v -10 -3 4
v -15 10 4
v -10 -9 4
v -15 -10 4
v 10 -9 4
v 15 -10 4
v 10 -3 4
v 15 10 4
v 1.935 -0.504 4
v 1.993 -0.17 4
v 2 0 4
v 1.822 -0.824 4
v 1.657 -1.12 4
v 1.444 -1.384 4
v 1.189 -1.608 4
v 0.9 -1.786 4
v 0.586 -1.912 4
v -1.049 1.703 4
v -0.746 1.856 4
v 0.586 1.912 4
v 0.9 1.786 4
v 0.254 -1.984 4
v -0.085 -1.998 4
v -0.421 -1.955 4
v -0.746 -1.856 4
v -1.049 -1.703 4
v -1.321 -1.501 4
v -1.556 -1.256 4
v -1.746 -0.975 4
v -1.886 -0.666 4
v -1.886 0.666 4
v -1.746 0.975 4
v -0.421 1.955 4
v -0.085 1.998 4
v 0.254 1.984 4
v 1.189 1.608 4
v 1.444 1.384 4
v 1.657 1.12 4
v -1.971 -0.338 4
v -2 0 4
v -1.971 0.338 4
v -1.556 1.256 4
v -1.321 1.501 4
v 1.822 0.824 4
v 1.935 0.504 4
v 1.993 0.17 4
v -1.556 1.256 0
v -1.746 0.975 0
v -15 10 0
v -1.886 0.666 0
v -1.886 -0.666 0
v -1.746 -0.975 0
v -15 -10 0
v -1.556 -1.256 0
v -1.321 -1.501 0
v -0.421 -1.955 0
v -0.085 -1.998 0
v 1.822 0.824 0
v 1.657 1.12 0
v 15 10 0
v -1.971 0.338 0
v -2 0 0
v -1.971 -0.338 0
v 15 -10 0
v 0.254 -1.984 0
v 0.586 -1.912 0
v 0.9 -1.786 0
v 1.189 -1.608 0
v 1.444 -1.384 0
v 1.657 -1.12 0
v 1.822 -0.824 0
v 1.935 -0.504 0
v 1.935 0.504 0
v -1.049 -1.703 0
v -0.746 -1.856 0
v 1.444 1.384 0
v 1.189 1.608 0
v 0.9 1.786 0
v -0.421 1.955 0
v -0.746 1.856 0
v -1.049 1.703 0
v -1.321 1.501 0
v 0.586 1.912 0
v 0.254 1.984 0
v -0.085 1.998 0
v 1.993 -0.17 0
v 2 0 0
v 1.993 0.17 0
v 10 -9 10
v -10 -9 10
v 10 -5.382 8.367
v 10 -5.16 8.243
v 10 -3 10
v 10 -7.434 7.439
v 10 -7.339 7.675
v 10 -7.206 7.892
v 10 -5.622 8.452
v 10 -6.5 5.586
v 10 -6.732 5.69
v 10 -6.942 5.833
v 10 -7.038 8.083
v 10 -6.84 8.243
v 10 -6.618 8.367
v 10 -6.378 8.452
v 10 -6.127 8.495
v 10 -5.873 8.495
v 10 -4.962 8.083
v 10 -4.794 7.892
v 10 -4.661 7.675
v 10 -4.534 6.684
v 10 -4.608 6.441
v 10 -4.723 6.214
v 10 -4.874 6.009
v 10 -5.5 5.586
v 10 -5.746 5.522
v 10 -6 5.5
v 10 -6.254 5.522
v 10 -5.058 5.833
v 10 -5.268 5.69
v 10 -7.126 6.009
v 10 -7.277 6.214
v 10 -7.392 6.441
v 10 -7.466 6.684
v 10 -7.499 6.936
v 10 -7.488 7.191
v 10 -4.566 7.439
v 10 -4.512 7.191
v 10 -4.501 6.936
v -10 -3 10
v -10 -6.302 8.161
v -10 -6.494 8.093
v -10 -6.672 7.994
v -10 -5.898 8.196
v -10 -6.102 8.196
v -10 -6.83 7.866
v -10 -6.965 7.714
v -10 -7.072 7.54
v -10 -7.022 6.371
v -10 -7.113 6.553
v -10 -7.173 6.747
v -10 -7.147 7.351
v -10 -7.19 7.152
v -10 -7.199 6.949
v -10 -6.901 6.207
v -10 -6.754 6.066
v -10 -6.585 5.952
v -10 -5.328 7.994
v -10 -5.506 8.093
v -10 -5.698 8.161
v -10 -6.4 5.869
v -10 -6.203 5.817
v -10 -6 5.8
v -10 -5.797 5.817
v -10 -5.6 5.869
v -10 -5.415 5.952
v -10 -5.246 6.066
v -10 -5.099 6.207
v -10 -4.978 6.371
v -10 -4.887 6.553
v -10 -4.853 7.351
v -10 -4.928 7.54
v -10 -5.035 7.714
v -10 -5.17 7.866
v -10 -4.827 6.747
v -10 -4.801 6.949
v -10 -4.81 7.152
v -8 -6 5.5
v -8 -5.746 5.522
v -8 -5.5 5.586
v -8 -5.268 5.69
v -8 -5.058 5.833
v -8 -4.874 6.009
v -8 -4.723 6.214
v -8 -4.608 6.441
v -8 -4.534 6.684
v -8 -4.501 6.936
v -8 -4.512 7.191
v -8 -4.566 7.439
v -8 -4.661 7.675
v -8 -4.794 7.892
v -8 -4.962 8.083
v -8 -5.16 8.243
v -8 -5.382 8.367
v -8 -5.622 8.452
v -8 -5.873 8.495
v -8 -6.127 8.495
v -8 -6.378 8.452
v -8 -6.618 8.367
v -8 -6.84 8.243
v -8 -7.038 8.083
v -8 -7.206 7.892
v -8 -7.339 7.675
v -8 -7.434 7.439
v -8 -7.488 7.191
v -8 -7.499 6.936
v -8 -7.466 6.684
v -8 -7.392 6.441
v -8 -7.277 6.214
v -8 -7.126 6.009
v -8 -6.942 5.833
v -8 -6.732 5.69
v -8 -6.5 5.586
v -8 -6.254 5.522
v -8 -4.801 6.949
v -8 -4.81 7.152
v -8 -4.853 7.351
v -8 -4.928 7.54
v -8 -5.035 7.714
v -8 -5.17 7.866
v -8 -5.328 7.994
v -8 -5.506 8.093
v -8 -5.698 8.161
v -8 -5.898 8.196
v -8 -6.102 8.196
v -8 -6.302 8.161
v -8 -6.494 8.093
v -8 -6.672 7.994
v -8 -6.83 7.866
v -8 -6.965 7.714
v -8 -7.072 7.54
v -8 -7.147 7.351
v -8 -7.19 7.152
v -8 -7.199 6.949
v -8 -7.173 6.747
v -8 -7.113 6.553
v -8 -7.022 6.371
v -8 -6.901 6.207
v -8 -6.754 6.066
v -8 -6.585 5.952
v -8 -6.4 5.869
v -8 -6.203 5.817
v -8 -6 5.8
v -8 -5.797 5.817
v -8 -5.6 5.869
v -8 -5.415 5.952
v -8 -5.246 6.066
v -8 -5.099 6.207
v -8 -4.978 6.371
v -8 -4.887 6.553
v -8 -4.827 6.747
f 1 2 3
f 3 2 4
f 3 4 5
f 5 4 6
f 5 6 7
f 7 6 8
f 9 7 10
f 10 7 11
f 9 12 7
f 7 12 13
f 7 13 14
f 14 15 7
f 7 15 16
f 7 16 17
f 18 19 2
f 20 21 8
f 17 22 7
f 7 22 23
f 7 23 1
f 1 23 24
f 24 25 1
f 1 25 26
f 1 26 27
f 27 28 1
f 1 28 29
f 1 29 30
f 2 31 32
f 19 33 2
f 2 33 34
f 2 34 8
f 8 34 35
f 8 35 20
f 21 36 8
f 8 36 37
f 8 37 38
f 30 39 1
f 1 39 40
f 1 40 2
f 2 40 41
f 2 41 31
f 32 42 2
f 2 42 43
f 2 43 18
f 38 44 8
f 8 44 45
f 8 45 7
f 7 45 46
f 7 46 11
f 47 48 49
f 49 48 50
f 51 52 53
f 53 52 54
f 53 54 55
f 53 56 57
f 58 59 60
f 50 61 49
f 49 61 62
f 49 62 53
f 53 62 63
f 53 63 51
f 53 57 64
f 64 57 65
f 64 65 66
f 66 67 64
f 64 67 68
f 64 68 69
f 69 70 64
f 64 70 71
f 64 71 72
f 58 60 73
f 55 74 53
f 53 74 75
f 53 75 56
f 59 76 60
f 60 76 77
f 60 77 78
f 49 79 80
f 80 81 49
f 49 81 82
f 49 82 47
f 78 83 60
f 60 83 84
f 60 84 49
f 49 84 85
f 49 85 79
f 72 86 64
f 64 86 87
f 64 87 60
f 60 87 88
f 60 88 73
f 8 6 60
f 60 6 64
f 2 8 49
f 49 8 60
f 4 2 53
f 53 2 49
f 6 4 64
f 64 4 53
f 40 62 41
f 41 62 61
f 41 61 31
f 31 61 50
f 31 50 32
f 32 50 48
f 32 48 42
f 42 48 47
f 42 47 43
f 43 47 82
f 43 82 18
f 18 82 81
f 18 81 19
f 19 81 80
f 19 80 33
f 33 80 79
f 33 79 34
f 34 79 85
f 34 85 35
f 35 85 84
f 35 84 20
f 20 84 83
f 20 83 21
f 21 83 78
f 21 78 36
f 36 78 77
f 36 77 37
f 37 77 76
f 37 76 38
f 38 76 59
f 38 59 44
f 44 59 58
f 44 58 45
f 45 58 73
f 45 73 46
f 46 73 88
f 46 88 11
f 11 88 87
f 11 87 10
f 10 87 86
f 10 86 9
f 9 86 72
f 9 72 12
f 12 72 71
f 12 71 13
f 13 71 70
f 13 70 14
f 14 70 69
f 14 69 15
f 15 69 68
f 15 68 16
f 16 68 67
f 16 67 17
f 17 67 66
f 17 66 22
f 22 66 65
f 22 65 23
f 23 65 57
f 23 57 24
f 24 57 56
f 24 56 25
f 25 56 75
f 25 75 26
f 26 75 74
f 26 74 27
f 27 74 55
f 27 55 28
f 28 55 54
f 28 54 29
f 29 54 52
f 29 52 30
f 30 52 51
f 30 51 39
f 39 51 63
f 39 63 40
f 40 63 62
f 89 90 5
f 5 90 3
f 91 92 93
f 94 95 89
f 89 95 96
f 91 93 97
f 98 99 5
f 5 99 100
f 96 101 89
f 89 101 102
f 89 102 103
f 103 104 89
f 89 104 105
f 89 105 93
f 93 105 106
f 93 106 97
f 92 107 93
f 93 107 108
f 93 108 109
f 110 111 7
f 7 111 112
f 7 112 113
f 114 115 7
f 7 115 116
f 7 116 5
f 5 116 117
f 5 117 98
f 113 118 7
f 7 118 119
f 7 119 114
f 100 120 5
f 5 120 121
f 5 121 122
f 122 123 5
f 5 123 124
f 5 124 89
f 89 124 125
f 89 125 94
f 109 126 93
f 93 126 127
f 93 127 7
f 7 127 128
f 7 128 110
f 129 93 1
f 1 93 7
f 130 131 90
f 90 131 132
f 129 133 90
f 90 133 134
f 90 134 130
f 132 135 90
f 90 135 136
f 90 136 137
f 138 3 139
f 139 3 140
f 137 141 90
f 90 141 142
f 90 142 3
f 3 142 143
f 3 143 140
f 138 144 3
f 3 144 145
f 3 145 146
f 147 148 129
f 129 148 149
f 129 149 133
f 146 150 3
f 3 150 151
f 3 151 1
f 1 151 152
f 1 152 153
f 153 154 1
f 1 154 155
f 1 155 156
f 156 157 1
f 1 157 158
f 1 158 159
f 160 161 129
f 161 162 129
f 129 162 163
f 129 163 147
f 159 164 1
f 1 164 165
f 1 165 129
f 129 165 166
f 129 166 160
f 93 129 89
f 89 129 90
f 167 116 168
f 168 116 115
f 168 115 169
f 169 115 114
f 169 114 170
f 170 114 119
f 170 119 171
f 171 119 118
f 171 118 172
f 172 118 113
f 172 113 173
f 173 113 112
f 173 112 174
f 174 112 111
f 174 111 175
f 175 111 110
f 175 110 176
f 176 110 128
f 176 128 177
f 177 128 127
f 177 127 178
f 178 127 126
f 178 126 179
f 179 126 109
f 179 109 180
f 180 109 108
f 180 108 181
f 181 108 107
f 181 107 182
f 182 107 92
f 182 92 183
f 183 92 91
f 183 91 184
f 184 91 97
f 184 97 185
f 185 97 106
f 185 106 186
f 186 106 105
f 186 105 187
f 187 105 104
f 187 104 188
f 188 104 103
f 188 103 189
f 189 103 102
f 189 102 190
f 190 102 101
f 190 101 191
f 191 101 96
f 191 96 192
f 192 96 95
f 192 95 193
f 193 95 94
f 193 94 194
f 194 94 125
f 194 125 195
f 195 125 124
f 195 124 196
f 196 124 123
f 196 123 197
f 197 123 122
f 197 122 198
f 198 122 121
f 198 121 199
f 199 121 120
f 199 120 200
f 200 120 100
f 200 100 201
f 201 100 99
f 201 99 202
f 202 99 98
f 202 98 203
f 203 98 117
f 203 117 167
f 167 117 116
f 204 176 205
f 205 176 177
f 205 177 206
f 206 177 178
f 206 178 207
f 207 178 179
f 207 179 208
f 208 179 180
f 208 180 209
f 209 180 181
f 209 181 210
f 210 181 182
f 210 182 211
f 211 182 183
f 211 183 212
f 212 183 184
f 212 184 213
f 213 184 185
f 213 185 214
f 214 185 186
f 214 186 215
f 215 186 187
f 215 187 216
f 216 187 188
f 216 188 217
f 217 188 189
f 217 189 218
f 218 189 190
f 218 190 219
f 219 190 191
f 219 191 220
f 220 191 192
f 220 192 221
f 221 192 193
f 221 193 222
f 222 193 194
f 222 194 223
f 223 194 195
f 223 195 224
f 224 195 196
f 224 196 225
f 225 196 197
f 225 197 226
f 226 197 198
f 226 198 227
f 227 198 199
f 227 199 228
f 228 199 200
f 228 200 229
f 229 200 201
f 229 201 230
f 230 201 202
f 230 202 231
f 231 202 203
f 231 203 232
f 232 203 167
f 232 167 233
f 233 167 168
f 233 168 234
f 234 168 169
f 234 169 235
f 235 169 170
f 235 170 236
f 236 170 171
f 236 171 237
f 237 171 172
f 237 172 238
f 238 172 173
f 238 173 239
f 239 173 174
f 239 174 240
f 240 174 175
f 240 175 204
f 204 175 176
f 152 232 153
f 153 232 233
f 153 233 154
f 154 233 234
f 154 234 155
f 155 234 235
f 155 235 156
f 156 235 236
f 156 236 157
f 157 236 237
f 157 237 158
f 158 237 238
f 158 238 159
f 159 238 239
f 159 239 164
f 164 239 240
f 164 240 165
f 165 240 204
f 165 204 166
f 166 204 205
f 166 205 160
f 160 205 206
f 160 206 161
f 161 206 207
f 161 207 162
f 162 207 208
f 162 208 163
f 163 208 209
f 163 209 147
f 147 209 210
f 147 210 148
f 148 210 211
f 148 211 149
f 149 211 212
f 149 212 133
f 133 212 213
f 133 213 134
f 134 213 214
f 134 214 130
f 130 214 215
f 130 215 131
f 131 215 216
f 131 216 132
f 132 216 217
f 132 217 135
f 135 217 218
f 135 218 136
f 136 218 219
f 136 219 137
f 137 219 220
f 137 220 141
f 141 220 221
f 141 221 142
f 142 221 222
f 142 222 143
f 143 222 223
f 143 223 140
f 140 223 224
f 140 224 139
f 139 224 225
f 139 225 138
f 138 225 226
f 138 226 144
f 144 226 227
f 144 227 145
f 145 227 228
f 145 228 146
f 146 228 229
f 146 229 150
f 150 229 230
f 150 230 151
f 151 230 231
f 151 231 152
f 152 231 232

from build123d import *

# Parameters (mm, degrees)
SKETCH1_W           = 30
SKETCH1_H           = 20
SKETCH1_R           = 2
BOSS_EXTRUDE1_DEPTH = 4
SKETCH2_W           = 20
SKETCH2_H           = 6
BOSS_EXTRUDE2_DEPTH = 6
SKETCH4_R           = 1.5
CUT_EXTRUDE1_DEPTH  = 18
SKETCH5_R           = 1.2
CUT_EXTRUDE2_DEPTH  = 6


with BuildPart() as part:
    # Sketch1 → Boss-Extrude1 (new body)
    with BuildSketch(Plane.XY):
        Rectangle(SKETCH1_W, SKETCH1_H)
        Circle(SKETCH1_R, mode=Mode.SUBTRACT)
    extrude(amount=BOSS_EXTRUDE1_DEPTH)

    # Sketch2 → Boss-Extrude2 (add)
    with BuildSketch(Plane.XY.offset(4)):
        with Locations((0, -6)):
            Rectangle(SKETCH2_W, SKETCH2_H)
    extrude(amount=BOSS_EXTRUDE2_DEPTH)

    # Sketch4 → Cut-Extrude1 (cut)
    with BuildSketch(Plane(origin=(10, 0, 0), x_dir=(0, 0, -1), z_dir=(1, 0, 0))):
        with Locations((-7, -6)):
            Circle(SKETCH4_R)
    extrude(amount=-CUT_EXTRUDE1_DEPTH, mode=Mode.SUBTRACT)

    # Sketch5 → Cut-Extrude2 (cut)
    with BuildSketch(Plane(origin=(-8, 0, 0), x_dir=(0, 0, -1), z_dir=(1, 0, 0))):
        with Locations((-7, -6)):
            Circle(SKETCH5_R)
    extrude(amount=-CUT_EXTRUDE2_DEPTH, mode=Mode.SUBTRACT)


solid = part.part
